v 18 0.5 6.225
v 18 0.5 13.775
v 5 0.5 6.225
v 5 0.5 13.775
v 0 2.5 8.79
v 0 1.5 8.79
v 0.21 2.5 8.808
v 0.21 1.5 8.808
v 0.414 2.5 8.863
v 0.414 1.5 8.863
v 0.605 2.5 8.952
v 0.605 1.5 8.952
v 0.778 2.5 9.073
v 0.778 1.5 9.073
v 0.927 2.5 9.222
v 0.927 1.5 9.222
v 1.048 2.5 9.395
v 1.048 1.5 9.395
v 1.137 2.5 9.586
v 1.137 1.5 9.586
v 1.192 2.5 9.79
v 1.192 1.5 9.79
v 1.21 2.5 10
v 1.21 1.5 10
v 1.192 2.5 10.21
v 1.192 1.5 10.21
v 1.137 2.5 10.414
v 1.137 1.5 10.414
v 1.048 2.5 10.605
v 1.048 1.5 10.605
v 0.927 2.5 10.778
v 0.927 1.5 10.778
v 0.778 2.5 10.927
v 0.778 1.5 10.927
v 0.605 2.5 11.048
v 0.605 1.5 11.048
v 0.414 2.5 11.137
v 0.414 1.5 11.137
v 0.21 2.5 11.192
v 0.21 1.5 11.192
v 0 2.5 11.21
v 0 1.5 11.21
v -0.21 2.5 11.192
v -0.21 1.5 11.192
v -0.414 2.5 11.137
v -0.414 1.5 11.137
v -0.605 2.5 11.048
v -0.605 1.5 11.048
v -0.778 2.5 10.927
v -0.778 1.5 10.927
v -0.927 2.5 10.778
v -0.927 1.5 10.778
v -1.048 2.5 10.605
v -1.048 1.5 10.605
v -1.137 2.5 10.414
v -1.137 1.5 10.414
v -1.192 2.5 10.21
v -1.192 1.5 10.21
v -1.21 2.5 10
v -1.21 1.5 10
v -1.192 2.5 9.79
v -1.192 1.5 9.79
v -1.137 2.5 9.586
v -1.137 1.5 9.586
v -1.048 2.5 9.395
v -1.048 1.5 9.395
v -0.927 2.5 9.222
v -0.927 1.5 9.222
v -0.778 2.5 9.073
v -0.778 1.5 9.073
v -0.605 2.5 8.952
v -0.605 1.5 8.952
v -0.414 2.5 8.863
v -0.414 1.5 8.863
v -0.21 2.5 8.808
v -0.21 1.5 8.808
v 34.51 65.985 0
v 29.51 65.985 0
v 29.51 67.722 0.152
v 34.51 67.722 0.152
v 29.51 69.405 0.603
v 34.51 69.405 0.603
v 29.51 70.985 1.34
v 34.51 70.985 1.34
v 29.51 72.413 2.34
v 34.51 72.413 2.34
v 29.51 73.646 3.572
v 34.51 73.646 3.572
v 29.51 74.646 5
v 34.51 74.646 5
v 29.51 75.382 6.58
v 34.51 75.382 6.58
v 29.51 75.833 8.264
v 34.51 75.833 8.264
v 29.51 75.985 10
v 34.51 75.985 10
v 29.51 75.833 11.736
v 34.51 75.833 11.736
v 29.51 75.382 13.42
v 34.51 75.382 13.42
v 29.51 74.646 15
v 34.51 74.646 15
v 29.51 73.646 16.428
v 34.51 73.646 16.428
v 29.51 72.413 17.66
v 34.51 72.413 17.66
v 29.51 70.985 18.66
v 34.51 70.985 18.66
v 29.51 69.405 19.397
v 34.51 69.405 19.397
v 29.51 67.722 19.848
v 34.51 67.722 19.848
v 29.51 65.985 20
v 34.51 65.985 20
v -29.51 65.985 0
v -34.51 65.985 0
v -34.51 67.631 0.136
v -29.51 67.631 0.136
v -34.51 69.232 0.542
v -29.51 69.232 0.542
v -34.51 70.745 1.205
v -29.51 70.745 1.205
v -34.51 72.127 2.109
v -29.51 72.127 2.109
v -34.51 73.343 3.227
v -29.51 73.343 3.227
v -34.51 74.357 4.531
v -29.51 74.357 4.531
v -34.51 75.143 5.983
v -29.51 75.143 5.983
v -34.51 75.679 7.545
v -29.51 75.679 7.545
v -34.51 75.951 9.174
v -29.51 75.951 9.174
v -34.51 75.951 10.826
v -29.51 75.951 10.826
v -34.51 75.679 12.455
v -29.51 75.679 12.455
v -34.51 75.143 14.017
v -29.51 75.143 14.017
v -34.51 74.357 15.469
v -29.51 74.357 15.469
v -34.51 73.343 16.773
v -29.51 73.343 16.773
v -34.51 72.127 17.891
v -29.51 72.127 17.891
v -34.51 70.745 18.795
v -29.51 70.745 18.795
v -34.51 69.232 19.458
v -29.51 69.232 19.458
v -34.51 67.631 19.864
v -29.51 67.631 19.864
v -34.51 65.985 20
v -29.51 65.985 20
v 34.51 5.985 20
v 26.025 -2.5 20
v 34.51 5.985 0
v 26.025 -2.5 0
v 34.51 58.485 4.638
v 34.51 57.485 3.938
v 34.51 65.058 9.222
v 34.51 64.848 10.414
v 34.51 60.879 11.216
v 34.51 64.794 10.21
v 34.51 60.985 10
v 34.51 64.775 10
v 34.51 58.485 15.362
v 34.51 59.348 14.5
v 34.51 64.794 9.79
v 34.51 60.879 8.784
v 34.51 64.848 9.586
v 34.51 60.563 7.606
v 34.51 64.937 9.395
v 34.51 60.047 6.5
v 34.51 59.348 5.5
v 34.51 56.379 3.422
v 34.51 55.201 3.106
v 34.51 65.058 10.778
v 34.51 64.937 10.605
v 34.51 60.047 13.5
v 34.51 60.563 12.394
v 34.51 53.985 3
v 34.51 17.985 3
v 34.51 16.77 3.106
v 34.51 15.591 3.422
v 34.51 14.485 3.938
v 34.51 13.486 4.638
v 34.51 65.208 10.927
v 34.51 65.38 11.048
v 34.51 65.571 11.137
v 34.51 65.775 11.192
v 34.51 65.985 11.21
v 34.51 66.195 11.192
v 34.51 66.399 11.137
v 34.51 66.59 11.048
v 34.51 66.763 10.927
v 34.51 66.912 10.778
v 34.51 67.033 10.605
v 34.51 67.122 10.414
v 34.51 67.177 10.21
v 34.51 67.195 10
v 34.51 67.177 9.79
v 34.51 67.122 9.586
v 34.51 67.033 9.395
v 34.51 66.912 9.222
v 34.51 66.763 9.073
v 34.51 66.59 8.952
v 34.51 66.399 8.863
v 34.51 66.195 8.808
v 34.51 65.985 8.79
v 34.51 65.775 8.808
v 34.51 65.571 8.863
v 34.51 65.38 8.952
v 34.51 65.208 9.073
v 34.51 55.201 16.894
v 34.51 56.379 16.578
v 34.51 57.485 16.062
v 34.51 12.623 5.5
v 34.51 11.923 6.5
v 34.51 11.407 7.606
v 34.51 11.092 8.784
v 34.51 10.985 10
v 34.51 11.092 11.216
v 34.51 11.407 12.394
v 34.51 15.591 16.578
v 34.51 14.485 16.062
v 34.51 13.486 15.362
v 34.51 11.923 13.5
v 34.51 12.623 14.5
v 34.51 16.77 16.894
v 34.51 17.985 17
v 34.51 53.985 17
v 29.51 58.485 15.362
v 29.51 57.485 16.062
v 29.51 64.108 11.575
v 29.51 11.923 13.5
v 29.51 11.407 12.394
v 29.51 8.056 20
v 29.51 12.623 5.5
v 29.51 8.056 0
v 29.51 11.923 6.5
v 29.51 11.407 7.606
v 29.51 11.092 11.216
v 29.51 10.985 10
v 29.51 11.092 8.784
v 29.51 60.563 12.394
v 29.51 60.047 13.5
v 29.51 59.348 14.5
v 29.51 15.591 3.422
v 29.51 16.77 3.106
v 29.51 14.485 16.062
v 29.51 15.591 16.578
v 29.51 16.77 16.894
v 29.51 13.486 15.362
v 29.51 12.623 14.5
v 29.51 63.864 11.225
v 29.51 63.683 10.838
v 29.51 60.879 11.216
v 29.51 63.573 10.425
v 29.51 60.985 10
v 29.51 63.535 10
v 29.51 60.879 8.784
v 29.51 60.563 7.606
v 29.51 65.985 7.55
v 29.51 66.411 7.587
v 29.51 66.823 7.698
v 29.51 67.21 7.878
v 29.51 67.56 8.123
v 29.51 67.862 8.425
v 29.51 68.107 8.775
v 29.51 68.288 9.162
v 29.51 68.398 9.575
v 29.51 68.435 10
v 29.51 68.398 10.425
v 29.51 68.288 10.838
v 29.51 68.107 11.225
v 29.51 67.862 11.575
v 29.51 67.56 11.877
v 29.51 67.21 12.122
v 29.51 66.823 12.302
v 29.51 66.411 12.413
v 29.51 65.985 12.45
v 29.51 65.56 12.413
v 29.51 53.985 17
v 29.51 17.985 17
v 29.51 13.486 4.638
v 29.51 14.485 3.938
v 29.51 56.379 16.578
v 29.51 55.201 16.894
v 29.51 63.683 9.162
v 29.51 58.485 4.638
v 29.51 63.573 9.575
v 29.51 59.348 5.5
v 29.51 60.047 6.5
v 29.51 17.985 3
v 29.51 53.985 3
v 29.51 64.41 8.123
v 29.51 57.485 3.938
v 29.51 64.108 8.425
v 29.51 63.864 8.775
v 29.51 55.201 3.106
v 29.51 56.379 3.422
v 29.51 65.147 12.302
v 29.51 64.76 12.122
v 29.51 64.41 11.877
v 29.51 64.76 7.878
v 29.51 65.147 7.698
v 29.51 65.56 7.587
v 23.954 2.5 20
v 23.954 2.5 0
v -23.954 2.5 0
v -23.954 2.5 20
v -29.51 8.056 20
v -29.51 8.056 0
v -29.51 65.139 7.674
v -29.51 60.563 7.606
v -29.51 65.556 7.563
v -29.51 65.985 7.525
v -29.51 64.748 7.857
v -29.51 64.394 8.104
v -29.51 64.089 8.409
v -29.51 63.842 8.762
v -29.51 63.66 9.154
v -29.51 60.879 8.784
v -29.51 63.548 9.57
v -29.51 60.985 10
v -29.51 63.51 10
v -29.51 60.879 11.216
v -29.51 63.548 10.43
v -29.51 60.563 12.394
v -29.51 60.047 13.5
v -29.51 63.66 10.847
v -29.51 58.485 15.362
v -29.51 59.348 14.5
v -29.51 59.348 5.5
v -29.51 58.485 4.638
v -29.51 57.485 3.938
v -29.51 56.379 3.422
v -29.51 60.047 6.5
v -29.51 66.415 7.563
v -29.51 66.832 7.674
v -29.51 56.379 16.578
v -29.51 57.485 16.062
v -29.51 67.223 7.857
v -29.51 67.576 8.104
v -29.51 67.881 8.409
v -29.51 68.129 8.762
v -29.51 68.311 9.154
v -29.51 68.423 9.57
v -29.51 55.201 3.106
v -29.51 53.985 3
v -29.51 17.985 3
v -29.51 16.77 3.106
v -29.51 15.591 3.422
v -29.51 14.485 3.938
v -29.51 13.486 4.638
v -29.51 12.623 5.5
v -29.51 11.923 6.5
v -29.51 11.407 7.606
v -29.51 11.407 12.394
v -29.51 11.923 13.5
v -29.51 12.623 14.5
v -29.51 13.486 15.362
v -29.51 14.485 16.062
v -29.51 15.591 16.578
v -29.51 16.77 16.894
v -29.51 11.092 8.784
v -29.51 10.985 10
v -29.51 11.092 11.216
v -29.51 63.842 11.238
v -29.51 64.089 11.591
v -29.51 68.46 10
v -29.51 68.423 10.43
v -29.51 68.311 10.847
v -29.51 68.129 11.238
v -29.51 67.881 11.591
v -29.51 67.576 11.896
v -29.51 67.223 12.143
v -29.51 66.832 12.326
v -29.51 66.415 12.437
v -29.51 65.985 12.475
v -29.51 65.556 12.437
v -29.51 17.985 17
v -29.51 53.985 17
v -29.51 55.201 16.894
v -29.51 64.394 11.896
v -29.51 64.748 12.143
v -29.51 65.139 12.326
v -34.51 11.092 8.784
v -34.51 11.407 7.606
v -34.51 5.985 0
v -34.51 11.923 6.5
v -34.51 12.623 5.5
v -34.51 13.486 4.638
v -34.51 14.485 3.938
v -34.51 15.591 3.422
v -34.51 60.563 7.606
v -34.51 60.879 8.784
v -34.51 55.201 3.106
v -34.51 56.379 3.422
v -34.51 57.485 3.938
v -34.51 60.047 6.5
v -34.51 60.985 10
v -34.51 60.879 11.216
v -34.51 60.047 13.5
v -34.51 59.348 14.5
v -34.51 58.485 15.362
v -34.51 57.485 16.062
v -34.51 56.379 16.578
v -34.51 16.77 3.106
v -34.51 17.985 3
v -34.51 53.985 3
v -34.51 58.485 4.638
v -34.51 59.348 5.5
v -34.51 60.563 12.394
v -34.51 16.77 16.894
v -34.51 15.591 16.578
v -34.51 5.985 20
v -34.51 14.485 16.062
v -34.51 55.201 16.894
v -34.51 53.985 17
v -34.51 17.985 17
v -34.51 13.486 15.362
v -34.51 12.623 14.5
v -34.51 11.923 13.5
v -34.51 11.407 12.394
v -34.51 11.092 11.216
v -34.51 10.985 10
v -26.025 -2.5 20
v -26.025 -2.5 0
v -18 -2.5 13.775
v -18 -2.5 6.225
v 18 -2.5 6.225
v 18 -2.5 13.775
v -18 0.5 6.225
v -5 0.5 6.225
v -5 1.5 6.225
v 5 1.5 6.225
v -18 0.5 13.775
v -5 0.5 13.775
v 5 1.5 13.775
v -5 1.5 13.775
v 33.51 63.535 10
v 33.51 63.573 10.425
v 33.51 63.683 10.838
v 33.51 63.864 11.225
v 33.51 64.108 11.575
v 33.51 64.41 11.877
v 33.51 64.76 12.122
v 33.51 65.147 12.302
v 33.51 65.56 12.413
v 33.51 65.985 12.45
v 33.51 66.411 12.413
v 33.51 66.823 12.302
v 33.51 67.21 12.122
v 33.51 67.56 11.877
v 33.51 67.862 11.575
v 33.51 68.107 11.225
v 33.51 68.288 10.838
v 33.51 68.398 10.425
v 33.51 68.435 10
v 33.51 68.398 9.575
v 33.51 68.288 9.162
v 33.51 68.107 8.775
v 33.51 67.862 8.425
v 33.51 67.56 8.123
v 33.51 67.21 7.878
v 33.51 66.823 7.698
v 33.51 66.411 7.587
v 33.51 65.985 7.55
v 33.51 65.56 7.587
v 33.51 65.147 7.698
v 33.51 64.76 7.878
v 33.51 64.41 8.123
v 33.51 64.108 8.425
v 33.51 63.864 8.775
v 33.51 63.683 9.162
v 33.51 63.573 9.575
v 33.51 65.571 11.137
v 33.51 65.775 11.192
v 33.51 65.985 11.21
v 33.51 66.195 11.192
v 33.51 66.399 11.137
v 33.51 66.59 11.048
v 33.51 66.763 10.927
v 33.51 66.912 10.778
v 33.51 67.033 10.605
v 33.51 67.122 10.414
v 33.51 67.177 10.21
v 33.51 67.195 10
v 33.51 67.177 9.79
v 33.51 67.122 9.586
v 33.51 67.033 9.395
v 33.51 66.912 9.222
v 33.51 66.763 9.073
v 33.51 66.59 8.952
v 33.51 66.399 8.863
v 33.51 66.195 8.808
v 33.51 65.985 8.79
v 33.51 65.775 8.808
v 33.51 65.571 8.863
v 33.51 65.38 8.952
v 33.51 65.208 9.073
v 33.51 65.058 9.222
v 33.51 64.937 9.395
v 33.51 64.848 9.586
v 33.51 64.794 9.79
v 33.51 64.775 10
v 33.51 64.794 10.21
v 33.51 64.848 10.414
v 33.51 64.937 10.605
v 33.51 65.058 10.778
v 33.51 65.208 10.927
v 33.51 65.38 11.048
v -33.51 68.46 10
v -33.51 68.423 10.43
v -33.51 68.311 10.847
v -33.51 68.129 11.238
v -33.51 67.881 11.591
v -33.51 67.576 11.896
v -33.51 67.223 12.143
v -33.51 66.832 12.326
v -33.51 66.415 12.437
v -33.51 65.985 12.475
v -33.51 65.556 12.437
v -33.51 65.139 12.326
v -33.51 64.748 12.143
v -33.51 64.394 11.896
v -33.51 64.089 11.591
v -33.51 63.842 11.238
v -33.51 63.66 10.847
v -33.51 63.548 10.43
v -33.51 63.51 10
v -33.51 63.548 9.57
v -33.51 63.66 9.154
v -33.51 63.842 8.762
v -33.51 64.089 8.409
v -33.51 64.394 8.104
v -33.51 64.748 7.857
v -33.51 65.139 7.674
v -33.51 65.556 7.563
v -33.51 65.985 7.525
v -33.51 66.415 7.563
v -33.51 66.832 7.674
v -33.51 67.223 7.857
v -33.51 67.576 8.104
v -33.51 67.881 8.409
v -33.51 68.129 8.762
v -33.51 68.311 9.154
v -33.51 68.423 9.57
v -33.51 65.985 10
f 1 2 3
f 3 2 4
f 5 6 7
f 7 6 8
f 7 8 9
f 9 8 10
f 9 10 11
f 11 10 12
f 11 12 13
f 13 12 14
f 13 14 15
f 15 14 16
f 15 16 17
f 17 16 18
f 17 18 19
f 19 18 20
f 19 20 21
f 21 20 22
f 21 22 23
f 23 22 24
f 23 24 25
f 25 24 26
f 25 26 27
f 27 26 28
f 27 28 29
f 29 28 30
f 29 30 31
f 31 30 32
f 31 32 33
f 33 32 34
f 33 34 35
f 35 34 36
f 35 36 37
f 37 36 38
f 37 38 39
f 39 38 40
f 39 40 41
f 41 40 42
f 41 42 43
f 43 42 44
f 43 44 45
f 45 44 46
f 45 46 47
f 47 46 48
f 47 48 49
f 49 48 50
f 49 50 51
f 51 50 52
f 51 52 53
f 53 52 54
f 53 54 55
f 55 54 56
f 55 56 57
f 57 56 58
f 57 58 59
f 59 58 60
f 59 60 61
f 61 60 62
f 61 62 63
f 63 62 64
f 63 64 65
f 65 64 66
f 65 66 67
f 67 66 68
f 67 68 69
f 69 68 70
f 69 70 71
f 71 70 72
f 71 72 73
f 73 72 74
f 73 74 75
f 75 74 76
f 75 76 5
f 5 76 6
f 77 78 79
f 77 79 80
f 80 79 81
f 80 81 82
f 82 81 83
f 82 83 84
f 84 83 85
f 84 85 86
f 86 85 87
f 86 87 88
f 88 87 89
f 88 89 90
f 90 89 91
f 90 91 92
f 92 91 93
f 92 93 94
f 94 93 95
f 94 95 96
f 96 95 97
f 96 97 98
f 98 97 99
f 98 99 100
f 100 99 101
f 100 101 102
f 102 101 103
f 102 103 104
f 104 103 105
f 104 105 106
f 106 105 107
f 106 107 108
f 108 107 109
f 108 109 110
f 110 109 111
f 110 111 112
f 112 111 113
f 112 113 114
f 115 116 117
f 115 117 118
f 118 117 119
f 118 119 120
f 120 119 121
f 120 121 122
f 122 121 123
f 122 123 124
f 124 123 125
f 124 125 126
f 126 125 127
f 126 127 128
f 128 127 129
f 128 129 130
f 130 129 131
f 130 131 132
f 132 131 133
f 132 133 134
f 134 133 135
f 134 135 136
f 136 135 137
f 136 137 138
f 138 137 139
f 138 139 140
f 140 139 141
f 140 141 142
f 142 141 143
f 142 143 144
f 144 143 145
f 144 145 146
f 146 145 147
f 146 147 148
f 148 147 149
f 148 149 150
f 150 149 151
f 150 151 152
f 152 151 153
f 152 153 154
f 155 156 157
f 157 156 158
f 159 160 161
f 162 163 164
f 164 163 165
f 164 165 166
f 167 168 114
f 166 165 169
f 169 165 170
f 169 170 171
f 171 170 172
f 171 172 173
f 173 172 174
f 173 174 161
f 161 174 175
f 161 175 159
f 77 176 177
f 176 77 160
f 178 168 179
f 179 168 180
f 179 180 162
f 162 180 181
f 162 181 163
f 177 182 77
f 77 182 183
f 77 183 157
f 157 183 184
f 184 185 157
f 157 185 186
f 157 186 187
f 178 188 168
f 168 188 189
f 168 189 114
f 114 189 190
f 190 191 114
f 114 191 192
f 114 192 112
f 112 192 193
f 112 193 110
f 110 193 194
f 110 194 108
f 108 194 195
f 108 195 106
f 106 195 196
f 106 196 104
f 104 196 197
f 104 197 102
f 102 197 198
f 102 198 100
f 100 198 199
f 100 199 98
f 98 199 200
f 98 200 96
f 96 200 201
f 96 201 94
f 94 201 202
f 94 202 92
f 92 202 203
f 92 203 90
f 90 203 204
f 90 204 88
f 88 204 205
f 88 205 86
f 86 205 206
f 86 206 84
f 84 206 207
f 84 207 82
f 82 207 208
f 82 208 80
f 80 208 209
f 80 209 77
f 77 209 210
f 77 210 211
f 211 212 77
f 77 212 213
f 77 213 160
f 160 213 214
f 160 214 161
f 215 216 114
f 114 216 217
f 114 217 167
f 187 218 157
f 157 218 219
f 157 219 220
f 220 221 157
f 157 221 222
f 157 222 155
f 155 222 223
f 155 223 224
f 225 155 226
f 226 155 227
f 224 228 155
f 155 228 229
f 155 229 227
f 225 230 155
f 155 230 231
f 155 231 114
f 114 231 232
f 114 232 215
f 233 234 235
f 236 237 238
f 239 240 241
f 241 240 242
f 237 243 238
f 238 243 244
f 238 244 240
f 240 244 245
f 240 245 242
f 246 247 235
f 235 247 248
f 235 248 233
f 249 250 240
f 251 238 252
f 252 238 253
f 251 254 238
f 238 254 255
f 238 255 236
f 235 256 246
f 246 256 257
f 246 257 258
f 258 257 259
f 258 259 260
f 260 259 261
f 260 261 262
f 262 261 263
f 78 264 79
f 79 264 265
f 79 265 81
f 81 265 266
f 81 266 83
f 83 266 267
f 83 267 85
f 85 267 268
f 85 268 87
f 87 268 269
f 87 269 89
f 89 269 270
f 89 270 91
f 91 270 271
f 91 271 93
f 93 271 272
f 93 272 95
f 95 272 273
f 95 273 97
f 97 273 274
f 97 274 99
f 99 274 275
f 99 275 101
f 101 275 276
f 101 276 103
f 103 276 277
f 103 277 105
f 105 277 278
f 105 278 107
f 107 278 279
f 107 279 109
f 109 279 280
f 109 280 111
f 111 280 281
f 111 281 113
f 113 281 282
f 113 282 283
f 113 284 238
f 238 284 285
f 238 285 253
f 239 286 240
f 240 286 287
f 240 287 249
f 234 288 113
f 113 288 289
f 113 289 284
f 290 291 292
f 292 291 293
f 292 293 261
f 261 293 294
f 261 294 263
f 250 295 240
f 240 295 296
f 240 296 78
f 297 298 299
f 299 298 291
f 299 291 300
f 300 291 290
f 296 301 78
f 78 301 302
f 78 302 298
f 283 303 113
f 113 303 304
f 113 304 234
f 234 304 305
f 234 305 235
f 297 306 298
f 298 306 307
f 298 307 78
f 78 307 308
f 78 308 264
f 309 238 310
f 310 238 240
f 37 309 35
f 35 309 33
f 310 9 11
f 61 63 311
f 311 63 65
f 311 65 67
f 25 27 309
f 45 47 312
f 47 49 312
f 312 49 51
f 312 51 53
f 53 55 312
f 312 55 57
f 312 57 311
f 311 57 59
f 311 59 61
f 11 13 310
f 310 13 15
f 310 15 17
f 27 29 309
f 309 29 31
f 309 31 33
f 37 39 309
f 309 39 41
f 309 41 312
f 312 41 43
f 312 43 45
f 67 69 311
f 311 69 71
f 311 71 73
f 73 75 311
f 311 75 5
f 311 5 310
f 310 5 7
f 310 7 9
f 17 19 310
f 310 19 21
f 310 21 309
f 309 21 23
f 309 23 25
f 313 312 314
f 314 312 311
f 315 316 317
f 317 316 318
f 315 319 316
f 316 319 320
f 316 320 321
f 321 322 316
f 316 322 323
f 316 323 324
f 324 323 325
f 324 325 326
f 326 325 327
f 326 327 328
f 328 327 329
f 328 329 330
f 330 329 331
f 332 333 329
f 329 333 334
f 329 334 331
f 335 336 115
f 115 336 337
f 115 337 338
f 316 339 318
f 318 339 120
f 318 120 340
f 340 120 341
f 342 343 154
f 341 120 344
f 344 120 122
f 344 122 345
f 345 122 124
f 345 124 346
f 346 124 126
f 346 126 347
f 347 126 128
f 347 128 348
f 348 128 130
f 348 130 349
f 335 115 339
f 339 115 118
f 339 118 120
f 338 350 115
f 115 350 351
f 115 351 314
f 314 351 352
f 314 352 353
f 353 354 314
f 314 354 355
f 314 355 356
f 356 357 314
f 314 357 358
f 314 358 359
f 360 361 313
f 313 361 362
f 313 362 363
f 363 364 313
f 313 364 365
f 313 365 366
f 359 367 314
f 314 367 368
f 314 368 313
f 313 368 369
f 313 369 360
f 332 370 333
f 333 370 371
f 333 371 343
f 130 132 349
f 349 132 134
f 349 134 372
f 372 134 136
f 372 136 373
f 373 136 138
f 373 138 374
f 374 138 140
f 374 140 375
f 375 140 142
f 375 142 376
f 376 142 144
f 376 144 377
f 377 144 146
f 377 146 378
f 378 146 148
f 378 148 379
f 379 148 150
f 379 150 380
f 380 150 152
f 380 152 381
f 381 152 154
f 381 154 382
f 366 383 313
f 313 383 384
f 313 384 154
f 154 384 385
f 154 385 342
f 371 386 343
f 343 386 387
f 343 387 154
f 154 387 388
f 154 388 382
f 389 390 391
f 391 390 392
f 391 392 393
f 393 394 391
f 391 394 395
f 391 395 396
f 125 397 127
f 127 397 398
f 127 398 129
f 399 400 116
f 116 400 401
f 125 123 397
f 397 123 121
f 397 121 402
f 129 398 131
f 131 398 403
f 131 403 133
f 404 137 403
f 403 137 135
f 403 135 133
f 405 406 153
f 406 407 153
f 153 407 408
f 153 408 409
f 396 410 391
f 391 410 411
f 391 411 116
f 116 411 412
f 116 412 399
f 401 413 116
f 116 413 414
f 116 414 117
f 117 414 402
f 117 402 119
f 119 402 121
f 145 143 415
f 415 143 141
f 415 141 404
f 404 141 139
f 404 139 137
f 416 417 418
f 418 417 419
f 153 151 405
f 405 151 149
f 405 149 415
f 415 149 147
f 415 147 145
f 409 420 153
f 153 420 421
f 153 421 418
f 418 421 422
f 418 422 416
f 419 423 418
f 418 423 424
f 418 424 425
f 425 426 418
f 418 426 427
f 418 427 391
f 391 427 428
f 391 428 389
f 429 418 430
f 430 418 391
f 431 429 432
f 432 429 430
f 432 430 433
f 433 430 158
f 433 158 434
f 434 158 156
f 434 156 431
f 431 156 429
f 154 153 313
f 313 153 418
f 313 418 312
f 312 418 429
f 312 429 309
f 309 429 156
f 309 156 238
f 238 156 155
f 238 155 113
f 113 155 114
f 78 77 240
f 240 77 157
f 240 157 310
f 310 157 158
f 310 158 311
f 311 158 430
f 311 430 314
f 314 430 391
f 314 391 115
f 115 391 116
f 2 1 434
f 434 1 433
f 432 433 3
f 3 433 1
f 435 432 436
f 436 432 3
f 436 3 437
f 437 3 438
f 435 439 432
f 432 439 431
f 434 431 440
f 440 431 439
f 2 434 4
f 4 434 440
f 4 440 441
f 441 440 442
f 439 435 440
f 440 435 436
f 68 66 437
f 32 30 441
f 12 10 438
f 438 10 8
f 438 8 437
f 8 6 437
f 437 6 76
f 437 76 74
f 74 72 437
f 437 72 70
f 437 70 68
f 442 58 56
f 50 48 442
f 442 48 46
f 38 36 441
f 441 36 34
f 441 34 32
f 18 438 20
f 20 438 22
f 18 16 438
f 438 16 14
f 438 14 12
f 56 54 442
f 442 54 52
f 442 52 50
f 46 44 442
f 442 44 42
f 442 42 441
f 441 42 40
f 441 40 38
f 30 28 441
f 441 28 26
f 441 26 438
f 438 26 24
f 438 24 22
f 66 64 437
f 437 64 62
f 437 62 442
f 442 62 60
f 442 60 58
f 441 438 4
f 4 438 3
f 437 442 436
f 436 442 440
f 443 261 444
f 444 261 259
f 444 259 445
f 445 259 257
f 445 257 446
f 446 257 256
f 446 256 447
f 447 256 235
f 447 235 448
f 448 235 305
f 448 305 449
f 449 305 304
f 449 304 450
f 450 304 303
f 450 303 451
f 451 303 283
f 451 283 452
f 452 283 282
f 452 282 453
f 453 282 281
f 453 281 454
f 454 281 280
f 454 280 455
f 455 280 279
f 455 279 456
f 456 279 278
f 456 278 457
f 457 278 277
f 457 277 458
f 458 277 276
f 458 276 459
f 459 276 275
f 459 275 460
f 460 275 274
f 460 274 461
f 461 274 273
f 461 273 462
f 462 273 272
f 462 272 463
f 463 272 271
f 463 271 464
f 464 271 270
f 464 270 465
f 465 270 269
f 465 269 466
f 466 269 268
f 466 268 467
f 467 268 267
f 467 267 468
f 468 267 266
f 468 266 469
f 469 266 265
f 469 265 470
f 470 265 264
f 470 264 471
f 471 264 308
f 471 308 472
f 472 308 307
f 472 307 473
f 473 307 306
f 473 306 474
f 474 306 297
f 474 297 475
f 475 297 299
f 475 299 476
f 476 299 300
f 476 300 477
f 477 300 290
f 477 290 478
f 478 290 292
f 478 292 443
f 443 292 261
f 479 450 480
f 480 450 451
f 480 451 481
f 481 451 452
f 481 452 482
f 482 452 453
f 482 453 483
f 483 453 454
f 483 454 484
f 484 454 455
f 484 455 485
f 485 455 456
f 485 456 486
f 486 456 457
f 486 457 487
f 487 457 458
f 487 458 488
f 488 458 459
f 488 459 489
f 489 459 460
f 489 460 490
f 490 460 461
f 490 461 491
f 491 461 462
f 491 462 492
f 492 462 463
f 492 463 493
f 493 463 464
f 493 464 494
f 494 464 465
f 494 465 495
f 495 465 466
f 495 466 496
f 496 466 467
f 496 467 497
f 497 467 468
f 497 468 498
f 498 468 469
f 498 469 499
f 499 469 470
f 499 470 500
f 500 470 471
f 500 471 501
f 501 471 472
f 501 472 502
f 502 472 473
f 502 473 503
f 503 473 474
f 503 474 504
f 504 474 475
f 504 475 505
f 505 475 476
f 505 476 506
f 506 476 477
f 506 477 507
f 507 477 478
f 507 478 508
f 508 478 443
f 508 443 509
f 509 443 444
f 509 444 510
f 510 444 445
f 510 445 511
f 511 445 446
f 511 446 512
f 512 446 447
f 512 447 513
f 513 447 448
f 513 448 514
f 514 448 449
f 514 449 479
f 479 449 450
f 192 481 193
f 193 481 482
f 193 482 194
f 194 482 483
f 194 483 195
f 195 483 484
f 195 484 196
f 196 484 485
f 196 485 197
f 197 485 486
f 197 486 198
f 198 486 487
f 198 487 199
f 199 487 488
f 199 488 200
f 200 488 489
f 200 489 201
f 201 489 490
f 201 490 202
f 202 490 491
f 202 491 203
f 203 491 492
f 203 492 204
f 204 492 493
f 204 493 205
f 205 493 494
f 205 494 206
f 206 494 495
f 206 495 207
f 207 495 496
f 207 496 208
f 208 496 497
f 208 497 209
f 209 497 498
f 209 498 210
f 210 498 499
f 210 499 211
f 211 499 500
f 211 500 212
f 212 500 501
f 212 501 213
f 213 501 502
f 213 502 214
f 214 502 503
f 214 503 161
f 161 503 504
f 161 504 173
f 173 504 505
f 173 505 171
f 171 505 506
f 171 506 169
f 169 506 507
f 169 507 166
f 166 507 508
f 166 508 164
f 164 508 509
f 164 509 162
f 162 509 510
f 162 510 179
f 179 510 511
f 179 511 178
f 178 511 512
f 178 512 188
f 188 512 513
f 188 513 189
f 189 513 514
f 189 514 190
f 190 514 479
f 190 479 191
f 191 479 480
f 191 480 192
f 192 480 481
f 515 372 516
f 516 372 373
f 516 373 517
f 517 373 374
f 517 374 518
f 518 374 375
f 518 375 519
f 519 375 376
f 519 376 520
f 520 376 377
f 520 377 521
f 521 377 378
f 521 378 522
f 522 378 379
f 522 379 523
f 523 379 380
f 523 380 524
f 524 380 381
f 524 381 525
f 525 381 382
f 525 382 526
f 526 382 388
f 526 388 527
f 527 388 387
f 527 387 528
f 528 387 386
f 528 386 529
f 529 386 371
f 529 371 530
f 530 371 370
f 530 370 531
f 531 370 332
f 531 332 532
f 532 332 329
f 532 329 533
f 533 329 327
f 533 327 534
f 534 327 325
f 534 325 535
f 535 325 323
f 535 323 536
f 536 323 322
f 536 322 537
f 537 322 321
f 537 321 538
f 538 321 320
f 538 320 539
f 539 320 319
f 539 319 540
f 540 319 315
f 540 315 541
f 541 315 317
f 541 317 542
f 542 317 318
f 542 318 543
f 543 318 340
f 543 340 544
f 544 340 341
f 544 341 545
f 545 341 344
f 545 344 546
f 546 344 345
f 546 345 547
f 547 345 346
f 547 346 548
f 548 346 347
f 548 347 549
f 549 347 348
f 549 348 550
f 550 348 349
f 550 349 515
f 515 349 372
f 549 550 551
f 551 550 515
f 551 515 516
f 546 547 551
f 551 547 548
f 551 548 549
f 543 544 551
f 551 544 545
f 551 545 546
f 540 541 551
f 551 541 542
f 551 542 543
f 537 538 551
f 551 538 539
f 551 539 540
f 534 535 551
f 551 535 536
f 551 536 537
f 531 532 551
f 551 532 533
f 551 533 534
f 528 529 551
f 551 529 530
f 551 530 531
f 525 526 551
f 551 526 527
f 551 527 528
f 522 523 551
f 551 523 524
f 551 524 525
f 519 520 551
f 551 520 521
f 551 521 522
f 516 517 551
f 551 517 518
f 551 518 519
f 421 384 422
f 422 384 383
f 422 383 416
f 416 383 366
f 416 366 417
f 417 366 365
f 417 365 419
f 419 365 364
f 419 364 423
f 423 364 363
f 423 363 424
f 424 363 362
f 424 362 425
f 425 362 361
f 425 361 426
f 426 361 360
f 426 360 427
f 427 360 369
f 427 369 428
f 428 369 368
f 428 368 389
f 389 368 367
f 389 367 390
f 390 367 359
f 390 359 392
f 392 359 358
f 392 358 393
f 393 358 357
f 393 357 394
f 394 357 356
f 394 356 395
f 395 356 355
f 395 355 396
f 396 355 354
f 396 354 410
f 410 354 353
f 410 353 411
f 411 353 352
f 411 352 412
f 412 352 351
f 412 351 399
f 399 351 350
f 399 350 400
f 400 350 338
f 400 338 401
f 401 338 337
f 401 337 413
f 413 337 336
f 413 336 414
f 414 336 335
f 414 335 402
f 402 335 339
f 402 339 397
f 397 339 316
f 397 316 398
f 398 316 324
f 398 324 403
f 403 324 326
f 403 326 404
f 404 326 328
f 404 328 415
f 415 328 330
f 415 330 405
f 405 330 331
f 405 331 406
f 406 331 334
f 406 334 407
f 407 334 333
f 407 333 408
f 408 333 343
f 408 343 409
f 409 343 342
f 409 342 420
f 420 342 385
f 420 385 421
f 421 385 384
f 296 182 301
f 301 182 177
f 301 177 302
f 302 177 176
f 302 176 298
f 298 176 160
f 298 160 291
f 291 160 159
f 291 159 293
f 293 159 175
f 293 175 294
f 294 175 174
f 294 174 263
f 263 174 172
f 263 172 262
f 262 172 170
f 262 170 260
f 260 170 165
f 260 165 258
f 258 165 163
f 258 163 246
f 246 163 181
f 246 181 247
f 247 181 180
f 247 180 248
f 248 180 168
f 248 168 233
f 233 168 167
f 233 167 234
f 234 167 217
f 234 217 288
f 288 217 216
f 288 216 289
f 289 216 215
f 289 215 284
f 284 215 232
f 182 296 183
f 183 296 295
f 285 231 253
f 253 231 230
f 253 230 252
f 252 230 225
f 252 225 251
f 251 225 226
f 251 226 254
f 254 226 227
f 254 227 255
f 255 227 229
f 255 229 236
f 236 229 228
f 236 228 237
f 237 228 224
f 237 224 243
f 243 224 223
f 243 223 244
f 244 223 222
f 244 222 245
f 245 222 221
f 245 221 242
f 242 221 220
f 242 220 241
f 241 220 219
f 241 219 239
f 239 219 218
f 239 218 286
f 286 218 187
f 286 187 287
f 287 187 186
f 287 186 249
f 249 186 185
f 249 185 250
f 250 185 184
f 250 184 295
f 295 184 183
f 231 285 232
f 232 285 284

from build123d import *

# Parameters (mm, degrees)
BOSS_EXTRUDE1_DEPTH = 20
FILLET2_RADIUS      = 10
FILLET2_LENGTH      = 5
FILLET3_RADIUS      = 10
FILLET3_LENGTH      = 5
SKETCH2_W           = 36
SKETCH2_H           = 7.55
CUT_EXTRUDE1_DEPTH  = 3
CUT_EXTRUDE2_REACH  = 87.375
SKETCH4_R           = 1.21
SKETCH6_W           = 10
SKETCH6_H           = 7.55
CUT_EXTRUDE3_DEPTH  = 1
SKETCH7_R           = 2.45
CUT_EXTRUDE4_DEPTH  = 4
CUT_EXTRUDE5_REACH  = 105.925
SKETCH9_R           = 1.21
SKETCH10_R          = 2.475
CUT_EXTRUDE6_DEPTH  = 4
CUT_EXTRUDE7_DEPTH  = 105.582615121


with BuildPart() as part:
    # Sketch1 → Boss-Extrude1 (new body)
    with BuildSketch(Plane.XY):
        Polygon((-26.024718626, -2.5), (26.024718626, -2.5), (34.51, 5.985281374), (34.51, 75.985281374), (29.51, 75.985281374), (29.51, 8.056349186), (23.953650814, 2.5), (-23.953650814, 2.5), (-29.51, 8.056349186), (-29.51, 75.985281374), (-34.51, 75.985281374), (-34.51, 5.985281374), align=None)
    extrude(amount=BOSS_EXTRUDE1_DEPTH)

    # Fillet2: full round fillet: the end face becomes a half cylinder, R = half its width
    fillet2_face = Plane((-32.01, 75.985281374, 10), x_dir=(-1, 0, 0), z_dir=(0, 1, 0))  # on the end face: x along it, z out of the body
    fillet2_slab = fillet2_face.offset(-FILLET2_RADIUS / 2) * Box(FILLET2_LENGTH, 2 * FILLET2_RADIUS, FILLET2_RADIUS, mode=Mode.PRIVATE)  # the body's end, R deep
    fillet2_round = Plane((-32.01, 65.985281374, 10), x_dir=(0, 1, 0), z_dir=(-1, 0, 0)) * Cylinder(FILLET2_RADIUS, FILLET2_LENGTH, mode=Mode.PRIVATE)  # its axis R under the face
    add(fillet2_slab - fillet2_round, mode=Mode.SUBTRACT)

    # Fillet3: full round fillet: the end face becomes a half cylinder, R = half its width
    fillet3_face = Plane((32.01, 75.985281374, 10), x_dir=(1, 0, 0), z_dir=(0, 1, 0))  # on the end face: x along it, z out of the body
    fillet3_slab = fillet3_face.offset(-FILLET3_RADIUS / 2) * Box(FILLET3_LENGTH, 2 * FILLET3_RADIUS, FILLET3_RADIUS, mode=Mode.PRIVATE)  # the body's end, R deep
    fillet3_round = Plane((32.01, 65.985281374, 10), x_dir=(0, 1, 0), z_dir=(1, 0, 0)) * Cylinder(FILLET3_RADIUS, FILLET3_LENGTH, mode=Mode.PRIVATE)  # its axis R under the face
    add(fillet3_slab - fillet3_round, mode=Mode.SUBTRACT)

    # Sketch2 → Cut-Extrude1 (cut)
    with BuildSketch(Plane.XZ.offset(2.5)):
        with Locations((0, 10)):
            Rectangle(SKETCH2_W, SKETCH2_H)
    extrude(amount=-CUT_EXTRUDE1_DEPTH, mode=Mode.SUBTRACT)

    # Sketch4 → Cut-Extrude2 (cut, up to next)
    with BuildSketch(Plane.XZ.offset(-0.5), mode=Mode.PRIVATE) as cut_extrude2_sk1:
        with Locations(Location((0, 10, 0), (0, 0, 270))):
            Circle(SKETCH4_R)
    cut_extrude2_tool1 = extrude(cut_extrude2_sk1.sketch, amount=-CUT_EXTRUDE2_REACH, mode=Mode.PRIVATE) & part.part
    add(cut_extrude2_tool1.solids().sort_by_distance((0, 0.5, 10))[0], mode=Mode.SUBTRACT)

    # Sketch6 → Cut-Extrude3 (cut)
    with BuildSketch(Plane.XZ.offset(-0.5)):
        with Locations((0, 10)):
            Rectangle(SKETCH6_W, SKETCH6_H)
    extrude(amount=-CUT_EXTRUDE3_DEPTH, mode=Mode.SUBTRACT)

    # Sketch7 → Cut-Extrude4 (cut)
    with BuildSketch(Plane.ZY.offset(-29.51)):
        with Locations(Location((10, 65.985281374, 0), (0, 0, 270))):
            Circle(SKETCH7_R)
    extrude(amount=-CUT_EXTRUDE4_DEPTH, mode=Mode.SUBTRACT)

    # Sketch9 → Cut-Extrude5 (cut, up to next)
    with BuildSketch(Plane.ZY.offset(-33.51), mode=Mode.PRIVATE) as cut_extrude5_sk1:
        with Locations((10, 65.985281374)):
            Circle(SKETCH9_R)
    cut_extrude5_tool1 = extrude(cut_extrude5_sk1.sketch, amount=-CUT_EXTRUDE5_REACH, mode=Mode.PRIVATE) & part.part
    add(cut_extrude5_tool1.solids().sort_by_distance((33.51, 65.985281, 10))[0], mode=Mode.SUBTRACT)

    # Sketch10 → Cut-Extrude6 (cut)
    with BuildSketch(Plane(origin=(-29.51, 0, 0), x_dir=(0, 0, -1), z_dir=(1, 0, 0))):
        with Locations(Location((-10, 65.985281374, 0), (0, 0, 90))):
            Circle(SKETCH10_R)
    extrude(amount=-CUT_EXTRUDE6_DEPTH, mode=Mode.SUBTRACT)

    # Sketch11 → Cut-Extrude7 (cut, through all)
    with BuildSketch(Plane(origin=(34.51, 0, 0), x_dir=(0, 0, -1), z_dir=(1, 0, 0))):
        with BuildLine():
            Line((-3, 53.985281374), (-3, 17.985281374))
            ThreePointArc((-3, 17.985281374), (-10, 10.985281374), (-17, 17.985281374))
            Line((-17, 17.985281374), (-17, 53.985281374))
            ThreePointArc((-17, 53.985281374), (-10, 60.985281374), (-3, 53.985281374))
        make_face()
    extrude(amount=-CUT_EXTRUDE7_DEPTH, mode=Mode.SUBTRACT)


solid = part.part
